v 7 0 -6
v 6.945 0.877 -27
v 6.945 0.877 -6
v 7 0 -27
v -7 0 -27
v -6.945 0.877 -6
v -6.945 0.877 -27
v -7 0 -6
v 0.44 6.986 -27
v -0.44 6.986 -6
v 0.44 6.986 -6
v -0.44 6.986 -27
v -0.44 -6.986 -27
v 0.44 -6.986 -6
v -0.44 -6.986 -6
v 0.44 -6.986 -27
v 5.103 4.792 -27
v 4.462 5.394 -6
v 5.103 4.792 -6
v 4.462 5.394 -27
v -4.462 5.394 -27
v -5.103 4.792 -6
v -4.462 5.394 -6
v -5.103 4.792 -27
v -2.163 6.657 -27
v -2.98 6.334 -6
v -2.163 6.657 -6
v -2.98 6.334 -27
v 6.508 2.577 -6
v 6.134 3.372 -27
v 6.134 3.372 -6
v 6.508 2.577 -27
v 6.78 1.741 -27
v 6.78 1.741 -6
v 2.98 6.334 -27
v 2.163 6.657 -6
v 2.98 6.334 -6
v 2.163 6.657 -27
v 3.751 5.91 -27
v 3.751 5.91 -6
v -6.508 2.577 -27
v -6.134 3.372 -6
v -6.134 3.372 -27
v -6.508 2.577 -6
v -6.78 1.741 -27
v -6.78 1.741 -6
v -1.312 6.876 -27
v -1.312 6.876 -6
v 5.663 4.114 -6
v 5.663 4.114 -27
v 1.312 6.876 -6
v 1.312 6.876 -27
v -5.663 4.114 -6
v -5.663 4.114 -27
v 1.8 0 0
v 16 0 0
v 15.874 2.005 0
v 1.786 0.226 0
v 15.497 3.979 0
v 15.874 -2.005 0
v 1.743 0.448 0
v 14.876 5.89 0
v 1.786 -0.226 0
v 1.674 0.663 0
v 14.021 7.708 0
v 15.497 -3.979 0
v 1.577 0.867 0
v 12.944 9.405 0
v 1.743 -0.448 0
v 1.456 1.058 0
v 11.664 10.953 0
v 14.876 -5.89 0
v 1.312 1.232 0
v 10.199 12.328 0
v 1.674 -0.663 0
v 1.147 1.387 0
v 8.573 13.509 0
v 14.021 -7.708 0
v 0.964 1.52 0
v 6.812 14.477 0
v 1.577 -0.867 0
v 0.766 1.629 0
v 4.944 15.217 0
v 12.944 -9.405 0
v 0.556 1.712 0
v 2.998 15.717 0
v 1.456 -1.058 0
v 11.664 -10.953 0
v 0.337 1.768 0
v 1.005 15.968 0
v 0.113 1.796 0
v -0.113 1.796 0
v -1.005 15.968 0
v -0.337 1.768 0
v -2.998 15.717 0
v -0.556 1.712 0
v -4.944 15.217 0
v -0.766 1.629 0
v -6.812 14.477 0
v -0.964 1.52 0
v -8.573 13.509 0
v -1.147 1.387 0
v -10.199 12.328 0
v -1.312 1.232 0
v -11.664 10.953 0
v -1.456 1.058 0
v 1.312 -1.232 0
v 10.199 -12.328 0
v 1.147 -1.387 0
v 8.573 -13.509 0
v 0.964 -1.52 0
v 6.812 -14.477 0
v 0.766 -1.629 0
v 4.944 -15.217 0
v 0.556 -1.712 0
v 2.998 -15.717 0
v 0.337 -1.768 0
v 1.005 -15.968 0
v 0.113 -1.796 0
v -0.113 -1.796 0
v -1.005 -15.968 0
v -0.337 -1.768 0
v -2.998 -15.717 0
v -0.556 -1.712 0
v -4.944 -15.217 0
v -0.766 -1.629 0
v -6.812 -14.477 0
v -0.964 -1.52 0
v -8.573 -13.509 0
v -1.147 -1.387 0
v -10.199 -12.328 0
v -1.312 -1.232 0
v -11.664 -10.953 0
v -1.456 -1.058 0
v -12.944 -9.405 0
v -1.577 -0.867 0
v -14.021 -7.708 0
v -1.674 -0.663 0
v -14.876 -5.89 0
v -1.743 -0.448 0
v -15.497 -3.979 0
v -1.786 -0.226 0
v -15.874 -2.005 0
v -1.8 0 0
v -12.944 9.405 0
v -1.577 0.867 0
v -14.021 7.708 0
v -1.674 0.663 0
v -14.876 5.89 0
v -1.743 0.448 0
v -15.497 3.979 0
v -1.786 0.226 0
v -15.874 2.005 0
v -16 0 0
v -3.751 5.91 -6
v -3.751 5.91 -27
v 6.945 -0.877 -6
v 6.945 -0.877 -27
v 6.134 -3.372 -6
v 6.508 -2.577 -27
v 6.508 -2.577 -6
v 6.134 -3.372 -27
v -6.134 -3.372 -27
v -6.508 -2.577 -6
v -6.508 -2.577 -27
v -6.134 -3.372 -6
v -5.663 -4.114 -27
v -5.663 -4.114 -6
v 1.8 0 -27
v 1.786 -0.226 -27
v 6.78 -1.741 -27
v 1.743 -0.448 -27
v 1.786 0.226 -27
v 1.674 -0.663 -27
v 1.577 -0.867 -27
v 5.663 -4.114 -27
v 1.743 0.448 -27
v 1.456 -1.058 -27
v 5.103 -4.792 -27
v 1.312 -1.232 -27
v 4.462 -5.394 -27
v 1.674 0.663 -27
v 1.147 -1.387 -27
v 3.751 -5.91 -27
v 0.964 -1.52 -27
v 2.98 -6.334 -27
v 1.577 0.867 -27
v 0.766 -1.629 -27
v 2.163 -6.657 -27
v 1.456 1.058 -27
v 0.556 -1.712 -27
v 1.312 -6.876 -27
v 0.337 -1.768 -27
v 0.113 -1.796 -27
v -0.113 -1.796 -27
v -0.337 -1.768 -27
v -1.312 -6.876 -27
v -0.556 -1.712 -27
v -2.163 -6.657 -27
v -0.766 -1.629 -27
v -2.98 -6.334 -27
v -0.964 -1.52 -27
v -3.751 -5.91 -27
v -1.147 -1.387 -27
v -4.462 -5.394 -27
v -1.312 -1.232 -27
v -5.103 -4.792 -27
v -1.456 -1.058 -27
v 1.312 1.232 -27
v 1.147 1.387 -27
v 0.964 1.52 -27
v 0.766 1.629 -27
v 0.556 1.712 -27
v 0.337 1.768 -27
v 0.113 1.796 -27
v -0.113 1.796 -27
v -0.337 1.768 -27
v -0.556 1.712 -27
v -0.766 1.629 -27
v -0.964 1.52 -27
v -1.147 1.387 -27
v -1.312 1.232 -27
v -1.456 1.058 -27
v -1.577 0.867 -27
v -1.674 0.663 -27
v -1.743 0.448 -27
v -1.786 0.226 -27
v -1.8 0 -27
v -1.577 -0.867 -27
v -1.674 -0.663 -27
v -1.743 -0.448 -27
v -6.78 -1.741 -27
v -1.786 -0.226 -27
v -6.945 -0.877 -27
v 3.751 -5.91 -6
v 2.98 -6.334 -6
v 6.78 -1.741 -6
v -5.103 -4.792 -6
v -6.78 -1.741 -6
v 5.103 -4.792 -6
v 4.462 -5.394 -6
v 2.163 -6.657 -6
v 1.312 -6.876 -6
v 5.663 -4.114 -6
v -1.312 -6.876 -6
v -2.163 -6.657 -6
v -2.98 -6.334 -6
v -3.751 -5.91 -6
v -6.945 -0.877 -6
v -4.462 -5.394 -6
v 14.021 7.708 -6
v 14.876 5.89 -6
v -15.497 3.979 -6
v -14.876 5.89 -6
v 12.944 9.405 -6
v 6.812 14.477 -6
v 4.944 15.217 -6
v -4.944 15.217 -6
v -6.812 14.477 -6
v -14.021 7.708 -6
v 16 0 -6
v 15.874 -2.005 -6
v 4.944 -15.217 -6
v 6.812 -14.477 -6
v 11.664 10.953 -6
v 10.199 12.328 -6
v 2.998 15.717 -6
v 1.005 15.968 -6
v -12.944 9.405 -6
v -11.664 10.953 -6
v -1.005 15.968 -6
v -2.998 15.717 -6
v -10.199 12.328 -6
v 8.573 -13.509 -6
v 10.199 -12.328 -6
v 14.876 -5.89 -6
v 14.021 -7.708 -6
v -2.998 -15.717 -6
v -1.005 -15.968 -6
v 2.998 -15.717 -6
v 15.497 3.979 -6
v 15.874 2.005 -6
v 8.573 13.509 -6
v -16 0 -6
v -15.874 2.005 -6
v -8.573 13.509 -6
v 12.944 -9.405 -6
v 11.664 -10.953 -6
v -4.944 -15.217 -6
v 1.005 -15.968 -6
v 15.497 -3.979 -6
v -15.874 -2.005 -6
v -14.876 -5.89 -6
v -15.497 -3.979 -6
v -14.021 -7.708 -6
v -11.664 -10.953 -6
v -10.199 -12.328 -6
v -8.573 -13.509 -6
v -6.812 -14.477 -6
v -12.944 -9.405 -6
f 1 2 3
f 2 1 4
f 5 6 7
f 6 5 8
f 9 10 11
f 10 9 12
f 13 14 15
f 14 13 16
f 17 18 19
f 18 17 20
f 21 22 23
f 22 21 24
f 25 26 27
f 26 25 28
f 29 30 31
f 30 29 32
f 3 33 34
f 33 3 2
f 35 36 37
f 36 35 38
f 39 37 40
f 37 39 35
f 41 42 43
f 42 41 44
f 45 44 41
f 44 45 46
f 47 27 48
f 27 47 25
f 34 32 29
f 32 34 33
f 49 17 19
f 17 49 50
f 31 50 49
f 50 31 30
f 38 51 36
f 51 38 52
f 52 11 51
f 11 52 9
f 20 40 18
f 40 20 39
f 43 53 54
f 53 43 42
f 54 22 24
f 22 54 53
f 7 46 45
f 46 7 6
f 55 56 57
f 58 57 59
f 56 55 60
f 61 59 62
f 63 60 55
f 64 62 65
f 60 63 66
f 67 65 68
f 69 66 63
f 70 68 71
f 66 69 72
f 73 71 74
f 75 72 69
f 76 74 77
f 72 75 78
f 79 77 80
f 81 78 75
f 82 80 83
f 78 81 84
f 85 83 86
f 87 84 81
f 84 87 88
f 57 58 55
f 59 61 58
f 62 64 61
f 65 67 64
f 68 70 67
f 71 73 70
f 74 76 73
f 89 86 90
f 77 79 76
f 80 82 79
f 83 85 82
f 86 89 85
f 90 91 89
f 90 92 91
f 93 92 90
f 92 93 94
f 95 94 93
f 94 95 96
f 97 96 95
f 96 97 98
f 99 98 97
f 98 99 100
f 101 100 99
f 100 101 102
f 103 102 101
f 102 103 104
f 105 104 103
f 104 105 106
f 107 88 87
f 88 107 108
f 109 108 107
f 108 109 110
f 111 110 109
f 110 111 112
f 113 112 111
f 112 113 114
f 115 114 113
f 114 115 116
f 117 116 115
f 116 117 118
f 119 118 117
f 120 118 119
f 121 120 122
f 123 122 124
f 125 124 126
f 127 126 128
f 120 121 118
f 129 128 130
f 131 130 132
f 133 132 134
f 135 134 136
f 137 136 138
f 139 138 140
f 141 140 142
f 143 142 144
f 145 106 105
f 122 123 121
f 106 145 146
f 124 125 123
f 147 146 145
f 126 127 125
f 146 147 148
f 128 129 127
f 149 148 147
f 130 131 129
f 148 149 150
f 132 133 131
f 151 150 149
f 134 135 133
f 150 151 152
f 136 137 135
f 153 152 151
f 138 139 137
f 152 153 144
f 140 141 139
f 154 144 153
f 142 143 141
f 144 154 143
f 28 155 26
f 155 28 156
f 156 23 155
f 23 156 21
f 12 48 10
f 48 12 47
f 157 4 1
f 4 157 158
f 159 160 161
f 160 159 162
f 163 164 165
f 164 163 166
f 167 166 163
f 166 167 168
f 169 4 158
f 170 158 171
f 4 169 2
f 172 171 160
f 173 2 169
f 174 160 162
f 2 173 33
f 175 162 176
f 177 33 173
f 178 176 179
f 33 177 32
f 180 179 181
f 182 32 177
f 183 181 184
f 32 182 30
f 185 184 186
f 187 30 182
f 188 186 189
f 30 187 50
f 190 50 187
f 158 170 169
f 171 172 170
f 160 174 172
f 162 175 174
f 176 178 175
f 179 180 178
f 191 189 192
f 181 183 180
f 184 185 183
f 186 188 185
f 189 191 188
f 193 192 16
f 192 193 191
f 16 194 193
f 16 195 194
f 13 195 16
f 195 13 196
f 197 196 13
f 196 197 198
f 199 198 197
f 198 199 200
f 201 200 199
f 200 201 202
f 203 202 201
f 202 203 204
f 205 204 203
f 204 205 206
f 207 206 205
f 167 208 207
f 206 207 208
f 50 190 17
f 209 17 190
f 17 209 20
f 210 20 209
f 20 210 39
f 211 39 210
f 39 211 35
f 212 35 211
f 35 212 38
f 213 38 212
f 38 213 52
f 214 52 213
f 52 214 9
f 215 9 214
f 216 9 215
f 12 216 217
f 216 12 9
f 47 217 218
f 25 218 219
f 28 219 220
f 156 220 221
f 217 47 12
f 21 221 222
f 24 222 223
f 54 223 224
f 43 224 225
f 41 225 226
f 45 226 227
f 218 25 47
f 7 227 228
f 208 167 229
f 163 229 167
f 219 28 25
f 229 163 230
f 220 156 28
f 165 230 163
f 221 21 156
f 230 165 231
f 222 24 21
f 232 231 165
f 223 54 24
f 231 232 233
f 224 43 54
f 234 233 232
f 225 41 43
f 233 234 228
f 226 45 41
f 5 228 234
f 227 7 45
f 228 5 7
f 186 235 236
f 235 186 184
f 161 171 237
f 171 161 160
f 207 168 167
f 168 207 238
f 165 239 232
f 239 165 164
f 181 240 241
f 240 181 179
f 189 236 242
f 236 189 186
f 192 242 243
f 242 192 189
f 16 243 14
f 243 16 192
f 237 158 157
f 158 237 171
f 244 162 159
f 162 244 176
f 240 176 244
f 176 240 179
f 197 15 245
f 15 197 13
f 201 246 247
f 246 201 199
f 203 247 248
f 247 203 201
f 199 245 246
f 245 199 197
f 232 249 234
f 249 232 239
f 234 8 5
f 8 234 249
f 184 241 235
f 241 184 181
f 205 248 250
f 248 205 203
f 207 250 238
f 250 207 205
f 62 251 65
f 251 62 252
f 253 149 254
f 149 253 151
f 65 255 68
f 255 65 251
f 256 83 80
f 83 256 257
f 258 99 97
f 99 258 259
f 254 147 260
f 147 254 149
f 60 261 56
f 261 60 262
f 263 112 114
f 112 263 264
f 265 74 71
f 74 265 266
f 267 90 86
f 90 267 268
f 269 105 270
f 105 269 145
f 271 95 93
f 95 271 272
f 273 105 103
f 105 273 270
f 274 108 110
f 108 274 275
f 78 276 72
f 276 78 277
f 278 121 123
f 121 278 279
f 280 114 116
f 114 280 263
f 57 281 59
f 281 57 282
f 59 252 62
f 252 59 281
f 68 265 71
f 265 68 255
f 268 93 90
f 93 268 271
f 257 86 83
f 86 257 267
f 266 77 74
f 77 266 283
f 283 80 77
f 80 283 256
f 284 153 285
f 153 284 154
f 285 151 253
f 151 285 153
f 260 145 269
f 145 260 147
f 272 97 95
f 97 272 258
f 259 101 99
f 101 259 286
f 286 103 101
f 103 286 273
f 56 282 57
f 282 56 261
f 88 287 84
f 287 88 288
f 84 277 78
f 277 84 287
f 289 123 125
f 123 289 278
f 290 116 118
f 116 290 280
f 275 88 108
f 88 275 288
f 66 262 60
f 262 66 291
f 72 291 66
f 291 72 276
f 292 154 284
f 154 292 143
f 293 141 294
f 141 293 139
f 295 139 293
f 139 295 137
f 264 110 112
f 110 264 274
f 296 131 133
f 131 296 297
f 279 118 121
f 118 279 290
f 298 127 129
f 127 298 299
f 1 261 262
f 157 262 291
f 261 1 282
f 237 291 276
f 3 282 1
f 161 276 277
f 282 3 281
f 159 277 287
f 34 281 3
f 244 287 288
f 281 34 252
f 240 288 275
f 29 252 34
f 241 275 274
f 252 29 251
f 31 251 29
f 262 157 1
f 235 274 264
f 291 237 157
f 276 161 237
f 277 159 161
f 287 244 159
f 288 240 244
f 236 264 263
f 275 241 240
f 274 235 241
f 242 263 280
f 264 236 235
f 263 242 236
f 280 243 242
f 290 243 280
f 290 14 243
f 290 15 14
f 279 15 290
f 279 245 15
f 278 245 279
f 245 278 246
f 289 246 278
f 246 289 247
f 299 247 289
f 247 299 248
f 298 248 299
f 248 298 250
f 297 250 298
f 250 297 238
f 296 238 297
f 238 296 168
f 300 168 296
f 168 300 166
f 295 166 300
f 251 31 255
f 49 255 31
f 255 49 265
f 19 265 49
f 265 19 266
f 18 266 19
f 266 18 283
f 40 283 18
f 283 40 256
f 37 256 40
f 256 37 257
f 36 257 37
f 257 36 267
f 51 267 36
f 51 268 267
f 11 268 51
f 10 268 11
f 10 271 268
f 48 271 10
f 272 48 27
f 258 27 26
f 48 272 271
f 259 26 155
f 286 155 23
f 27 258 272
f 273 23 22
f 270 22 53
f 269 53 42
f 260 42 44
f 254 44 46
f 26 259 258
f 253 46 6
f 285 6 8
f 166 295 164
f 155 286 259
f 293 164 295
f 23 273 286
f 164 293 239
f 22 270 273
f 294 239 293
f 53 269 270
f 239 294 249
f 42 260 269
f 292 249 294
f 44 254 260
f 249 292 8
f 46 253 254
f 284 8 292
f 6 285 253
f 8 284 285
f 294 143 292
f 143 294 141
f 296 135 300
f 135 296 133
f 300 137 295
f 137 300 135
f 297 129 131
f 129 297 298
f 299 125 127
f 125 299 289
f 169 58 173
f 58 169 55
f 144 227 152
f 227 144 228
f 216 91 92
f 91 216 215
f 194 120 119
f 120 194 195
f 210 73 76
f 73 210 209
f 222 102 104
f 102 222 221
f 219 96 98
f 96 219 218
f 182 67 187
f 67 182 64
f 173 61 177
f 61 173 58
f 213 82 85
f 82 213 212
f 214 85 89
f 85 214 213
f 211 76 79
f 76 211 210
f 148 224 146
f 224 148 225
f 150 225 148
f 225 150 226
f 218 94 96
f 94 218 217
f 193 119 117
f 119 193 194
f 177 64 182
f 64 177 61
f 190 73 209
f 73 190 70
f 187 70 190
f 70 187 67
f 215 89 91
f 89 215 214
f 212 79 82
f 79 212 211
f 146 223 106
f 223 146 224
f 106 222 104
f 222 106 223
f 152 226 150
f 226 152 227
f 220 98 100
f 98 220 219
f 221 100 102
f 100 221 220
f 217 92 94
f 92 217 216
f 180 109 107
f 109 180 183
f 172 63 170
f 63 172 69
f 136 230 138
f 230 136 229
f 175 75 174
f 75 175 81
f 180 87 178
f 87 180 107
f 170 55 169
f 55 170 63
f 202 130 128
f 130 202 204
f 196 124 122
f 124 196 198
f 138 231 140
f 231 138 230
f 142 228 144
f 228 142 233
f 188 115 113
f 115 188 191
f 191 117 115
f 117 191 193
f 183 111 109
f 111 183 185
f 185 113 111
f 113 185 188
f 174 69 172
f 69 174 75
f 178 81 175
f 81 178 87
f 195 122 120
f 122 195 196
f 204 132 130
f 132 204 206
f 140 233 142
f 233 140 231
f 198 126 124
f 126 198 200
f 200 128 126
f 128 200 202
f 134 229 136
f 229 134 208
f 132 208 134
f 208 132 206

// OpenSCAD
$fn = 50;


difference() {
	union() {
		translate(v = [0, 0, -27.0000000000]) {
			cylinder(h = 27, r = 7.0000000000);
		}
		translate(v = [0, 0, -6.0000000000]) {
			cylinder(h = 6, r = 16.0000000000);
		}
	}
	union() {
		#translate(v = [0, 0, -27]) {
			cylinder(h = 27, r = 1.8000000000);
		}
	}
}
